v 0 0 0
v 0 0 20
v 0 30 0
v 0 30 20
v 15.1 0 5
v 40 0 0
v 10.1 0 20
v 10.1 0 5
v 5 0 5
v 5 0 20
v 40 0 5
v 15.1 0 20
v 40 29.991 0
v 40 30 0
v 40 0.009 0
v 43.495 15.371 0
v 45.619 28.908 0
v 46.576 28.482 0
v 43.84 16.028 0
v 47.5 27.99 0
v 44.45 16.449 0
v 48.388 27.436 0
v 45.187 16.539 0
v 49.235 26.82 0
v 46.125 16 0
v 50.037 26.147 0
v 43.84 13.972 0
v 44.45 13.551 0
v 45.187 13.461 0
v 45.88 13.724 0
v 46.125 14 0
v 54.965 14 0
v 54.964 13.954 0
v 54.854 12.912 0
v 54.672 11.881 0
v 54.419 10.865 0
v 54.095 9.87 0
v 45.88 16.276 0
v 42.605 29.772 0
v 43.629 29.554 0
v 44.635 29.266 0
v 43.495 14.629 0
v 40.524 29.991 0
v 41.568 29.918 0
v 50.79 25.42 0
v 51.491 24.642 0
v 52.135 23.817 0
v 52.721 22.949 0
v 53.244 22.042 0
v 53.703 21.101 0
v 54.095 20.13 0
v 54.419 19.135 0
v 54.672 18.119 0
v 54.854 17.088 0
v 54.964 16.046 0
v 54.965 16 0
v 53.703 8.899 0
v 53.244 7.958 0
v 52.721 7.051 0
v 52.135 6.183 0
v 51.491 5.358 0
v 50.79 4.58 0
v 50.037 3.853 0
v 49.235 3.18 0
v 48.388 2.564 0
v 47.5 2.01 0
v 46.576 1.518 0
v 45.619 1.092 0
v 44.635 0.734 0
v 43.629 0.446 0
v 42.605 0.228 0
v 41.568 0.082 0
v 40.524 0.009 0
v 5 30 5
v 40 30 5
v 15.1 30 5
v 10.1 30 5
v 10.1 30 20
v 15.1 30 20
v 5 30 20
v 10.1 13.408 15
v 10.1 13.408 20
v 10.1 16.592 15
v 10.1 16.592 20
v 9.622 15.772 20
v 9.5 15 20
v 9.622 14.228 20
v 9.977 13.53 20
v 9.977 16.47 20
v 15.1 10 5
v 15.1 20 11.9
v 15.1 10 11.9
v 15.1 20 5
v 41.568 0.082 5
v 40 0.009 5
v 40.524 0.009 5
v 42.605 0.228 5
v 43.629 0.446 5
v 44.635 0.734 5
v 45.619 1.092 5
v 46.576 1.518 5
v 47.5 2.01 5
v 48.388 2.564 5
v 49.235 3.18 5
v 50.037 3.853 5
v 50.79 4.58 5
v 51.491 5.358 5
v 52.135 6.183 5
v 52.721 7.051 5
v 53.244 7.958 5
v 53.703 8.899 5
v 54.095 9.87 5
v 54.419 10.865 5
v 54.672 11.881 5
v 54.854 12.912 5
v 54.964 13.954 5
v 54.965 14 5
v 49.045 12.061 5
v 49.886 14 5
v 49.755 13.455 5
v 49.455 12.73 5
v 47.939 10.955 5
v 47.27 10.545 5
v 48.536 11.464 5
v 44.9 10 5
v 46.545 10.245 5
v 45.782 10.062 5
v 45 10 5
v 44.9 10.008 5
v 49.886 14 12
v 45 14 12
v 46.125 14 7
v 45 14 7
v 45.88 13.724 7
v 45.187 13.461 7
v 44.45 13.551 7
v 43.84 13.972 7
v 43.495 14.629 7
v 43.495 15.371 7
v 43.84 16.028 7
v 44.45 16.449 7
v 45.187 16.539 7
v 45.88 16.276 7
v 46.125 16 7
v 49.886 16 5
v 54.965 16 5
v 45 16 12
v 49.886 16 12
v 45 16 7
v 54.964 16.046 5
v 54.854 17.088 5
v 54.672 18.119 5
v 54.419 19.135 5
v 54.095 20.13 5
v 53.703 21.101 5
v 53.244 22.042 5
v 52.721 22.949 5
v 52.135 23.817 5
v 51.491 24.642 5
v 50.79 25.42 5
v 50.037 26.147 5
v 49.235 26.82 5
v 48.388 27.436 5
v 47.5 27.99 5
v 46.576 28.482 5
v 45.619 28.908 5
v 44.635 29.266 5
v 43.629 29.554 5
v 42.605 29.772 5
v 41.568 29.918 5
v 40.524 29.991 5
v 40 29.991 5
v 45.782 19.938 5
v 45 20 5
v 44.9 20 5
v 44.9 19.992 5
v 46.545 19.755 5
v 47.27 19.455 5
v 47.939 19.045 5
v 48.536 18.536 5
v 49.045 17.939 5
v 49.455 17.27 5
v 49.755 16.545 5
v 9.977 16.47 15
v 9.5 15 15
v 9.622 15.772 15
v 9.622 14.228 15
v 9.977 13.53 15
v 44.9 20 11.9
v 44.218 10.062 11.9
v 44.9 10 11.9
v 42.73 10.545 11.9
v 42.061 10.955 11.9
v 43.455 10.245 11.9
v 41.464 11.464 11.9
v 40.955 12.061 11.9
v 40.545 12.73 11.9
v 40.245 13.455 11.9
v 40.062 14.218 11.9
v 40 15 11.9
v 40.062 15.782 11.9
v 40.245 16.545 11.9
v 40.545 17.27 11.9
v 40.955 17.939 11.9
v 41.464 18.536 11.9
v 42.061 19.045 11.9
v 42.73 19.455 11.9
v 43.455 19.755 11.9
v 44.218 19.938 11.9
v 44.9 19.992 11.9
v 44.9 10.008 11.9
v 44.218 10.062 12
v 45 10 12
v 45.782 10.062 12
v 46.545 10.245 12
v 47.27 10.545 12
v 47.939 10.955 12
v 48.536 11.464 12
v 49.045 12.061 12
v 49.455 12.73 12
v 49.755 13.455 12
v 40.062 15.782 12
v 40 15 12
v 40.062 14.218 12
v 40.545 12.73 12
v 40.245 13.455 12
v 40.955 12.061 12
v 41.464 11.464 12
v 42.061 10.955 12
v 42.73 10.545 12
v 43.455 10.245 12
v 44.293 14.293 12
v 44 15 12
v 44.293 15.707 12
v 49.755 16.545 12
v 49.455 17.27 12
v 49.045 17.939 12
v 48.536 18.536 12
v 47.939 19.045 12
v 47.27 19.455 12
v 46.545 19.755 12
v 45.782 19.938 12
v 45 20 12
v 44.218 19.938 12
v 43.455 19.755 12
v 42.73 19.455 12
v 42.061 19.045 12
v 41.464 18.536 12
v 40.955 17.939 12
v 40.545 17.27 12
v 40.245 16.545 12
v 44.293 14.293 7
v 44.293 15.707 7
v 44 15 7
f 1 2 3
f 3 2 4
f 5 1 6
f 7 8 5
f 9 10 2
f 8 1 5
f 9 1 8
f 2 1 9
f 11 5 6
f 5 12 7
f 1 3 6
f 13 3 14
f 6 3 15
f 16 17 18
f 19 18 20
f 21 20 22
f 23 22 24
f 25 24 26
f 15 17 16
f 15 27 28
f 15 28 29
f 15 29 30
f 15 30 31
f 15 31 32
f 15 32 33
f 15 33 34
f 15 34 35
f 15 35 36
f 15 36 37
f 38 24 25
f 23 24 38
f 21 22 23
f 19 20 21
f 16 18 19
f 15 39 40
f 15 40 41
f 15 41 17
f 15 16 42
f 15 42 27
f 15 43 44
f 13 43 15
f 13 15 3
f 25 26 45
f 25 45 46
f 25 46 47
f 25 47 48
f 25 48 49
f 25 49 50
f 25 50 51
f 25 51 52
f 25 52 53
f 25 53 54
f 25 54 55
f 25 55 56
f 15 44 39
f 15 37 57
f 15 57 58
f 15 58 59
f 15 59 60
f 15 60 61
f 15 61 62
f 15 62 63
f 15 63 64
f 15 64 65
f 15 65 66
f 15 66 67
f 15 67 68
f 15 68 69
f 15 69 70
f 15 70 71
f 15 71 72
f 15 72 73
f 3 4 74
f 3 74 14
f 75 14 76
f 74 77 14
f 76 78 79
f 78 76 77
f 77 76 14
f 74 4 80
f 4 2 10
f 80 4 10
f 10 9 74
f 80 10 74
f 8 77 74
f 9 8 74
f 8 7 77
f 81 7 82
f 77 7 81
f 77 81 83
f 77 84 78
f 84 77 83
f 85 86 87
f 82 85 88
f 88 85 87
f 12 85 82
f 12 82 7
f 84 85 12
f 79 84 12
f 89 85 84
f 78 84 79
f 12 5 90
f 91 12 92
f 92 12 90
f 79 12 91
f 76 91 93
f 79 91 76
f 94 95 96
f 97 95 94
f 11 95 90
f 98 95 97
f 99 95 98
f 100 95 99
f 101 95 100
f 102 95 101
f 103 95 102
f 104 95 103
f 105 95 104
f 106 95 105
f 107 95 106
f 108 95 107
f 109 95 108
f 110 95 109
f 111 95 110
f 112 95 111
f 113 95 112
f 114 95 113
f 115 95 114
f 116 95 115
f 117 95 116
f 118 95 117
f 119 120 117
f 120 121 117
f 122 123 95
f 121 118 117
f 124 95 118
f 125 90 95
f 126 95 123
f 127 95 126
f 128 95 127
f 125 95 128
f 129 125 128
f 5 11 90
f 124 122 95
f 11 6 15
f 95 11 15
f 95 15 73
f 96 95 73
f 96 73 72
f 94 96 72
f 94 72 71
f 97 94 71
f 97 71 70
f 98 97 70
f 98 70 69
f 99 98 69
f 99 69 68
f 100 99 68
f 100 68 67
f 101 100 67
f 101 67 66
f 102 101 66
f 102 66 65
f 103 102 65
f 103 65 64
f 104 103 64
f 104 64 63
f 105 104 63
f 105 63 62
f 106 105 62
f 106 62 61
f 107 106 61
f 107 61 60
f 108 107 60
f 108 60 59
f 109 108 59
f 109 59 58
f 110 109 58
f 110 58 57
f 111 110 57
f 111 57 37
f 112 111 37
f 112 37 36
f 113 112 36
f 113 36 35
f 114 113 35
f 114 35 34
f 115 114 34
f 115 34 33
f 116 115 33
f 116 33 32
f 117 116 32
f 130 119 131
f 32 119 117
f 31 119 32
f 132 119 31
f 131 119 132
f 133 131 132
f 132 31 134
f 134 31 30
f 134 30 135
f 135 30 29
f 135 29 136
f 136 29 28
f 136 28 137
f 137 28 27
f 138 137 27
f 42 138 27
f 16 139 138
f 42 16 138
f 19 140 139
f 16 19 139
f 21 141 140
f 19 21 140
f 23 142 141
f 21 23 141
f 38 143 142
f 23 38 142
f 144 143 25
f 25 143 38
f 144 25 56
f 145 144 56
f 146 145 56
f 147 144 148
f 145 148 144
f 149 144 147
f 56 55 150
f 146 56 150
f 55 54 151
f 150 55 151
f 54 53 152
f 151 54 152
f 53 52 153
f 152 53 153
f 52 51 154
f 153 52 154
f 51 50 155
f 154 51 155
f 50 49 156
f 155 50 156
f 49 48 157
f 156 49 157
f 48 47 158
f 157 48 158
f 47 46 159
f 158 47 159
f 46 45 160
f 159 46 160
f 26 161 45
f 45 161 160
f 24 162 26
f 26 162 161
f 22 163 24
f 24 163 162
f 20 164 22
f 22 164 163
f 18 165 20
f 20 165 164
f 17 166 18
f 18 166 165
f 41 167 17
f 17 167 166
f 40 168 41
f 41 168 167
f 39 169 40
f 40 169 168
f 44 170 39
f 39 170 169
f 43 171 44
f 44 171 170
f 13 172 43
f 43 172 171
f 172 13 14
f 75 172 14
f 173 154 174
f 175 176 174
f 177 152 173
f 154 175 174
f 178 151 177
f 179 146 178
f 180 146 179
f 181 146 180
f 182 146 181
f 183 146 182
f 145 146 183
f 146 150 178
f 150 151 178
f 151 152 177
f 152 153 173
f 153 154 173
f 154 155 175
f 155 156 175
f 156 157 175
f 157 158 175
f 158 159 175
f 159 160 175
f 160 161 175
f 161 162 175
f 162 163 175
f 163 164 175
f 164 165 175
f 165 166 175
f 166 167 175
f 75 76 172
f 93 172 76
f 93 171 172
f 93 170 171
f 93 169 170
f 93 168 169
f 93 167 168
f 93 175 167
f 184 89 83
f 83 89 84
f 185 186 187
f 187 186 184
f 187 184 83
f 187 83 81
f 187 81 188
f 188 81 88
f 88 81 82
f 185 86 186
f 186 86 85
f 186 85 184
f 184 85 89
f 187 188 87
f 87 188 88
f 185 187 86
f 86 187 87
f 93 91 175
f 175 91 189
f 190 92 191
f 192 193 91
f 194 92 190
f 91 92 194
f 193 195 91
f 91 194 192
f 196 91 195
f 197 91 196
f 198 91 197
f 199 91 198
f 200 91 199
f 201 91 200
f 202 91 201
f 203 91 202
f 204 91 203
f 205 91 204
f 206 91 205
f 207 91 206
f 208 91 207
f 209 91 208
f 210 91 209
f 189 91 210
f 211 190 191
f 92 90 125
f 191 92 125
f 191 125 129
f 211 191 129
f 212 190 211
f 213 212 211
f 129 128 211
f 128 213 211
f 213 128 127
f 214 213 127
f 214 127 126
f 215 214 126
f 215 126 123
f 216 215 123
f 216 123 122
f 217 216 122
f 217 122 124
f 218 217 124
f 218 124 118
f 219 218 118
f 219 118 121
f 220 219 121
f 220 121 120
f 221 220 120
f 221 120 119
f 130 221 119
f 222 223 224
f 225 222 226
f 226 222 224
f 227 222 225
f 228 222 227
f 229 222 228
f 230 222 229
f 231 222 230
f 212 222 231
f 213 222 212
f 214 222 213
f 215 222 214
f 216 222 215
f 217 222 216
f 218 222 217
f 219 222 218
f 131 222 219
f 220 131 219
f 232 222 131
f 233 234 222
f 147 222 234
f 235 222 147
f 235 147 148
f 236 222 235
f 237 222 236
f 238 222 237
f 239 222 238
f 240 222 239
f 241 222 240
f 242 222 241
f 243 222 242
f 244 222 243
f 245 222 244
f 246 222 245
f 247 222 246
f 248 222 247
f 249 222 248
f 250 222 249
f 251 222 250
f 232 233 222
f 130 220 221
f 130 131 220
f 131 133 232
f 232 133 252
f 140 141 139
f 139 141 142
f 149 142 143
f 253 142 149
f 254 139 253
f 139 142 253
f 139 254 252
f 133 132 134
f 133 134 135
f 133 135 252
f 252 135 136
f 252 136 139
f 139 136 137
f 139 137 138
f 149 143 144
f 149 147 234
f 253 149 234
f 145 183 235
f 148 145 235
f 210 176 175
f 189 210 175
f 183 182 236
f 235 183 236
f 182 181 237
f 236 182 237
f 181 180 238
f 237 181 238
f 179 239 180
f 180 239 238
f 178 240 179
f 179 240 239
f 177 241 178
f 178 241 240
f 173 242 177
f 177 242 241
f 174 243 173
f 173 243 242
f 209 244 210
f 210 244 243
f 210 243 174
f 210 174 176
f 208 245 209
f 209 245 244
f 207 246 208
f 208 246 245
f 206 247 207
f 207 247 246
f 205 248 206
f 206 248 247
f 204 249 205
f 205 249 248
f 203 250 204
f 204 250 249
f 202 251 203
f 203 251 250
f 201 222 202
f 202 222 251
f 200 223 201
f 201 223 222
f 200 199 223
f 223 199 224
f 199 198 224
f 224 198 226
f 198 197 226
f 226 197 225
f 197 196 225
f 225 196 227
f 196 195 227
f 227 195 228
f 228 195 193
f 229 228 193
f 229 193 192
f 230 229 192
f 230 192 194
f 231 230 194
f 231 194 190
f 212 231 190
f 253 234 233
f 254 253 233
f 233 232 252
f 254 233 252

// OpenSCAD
$fs=0.8; // def 1, 0.2 is high res
$fa=4;//def 12, 3 is very nice
%translate([0,0,-0.5])cube([200,200,1],center=true); //build platform

cube([40,30,5]); //base
cube([5,30,20]); //vert left
translate([10.1,0,0]) cube([5,30,20]); //vert right
translate([12,15,15]) cylinder(5,2.5,2.5); //grip knobble

difference() {
	union() {
		translate([14.9,10,4.9]) cube([30,10,7]);
		translate([45,15,5]) cylinder(7,5,5);
		translate([40,15,0]) cylinder(5,15,15);
	}
	union() {
		translate([45,15,-1]) cylinder(20,1,1); //filament
		translate([45,15,-1]) cylinder(8,1.55,1.55); //filament tube
		translate([45,14,-1]) cube([15,2,18]);
	}
}
